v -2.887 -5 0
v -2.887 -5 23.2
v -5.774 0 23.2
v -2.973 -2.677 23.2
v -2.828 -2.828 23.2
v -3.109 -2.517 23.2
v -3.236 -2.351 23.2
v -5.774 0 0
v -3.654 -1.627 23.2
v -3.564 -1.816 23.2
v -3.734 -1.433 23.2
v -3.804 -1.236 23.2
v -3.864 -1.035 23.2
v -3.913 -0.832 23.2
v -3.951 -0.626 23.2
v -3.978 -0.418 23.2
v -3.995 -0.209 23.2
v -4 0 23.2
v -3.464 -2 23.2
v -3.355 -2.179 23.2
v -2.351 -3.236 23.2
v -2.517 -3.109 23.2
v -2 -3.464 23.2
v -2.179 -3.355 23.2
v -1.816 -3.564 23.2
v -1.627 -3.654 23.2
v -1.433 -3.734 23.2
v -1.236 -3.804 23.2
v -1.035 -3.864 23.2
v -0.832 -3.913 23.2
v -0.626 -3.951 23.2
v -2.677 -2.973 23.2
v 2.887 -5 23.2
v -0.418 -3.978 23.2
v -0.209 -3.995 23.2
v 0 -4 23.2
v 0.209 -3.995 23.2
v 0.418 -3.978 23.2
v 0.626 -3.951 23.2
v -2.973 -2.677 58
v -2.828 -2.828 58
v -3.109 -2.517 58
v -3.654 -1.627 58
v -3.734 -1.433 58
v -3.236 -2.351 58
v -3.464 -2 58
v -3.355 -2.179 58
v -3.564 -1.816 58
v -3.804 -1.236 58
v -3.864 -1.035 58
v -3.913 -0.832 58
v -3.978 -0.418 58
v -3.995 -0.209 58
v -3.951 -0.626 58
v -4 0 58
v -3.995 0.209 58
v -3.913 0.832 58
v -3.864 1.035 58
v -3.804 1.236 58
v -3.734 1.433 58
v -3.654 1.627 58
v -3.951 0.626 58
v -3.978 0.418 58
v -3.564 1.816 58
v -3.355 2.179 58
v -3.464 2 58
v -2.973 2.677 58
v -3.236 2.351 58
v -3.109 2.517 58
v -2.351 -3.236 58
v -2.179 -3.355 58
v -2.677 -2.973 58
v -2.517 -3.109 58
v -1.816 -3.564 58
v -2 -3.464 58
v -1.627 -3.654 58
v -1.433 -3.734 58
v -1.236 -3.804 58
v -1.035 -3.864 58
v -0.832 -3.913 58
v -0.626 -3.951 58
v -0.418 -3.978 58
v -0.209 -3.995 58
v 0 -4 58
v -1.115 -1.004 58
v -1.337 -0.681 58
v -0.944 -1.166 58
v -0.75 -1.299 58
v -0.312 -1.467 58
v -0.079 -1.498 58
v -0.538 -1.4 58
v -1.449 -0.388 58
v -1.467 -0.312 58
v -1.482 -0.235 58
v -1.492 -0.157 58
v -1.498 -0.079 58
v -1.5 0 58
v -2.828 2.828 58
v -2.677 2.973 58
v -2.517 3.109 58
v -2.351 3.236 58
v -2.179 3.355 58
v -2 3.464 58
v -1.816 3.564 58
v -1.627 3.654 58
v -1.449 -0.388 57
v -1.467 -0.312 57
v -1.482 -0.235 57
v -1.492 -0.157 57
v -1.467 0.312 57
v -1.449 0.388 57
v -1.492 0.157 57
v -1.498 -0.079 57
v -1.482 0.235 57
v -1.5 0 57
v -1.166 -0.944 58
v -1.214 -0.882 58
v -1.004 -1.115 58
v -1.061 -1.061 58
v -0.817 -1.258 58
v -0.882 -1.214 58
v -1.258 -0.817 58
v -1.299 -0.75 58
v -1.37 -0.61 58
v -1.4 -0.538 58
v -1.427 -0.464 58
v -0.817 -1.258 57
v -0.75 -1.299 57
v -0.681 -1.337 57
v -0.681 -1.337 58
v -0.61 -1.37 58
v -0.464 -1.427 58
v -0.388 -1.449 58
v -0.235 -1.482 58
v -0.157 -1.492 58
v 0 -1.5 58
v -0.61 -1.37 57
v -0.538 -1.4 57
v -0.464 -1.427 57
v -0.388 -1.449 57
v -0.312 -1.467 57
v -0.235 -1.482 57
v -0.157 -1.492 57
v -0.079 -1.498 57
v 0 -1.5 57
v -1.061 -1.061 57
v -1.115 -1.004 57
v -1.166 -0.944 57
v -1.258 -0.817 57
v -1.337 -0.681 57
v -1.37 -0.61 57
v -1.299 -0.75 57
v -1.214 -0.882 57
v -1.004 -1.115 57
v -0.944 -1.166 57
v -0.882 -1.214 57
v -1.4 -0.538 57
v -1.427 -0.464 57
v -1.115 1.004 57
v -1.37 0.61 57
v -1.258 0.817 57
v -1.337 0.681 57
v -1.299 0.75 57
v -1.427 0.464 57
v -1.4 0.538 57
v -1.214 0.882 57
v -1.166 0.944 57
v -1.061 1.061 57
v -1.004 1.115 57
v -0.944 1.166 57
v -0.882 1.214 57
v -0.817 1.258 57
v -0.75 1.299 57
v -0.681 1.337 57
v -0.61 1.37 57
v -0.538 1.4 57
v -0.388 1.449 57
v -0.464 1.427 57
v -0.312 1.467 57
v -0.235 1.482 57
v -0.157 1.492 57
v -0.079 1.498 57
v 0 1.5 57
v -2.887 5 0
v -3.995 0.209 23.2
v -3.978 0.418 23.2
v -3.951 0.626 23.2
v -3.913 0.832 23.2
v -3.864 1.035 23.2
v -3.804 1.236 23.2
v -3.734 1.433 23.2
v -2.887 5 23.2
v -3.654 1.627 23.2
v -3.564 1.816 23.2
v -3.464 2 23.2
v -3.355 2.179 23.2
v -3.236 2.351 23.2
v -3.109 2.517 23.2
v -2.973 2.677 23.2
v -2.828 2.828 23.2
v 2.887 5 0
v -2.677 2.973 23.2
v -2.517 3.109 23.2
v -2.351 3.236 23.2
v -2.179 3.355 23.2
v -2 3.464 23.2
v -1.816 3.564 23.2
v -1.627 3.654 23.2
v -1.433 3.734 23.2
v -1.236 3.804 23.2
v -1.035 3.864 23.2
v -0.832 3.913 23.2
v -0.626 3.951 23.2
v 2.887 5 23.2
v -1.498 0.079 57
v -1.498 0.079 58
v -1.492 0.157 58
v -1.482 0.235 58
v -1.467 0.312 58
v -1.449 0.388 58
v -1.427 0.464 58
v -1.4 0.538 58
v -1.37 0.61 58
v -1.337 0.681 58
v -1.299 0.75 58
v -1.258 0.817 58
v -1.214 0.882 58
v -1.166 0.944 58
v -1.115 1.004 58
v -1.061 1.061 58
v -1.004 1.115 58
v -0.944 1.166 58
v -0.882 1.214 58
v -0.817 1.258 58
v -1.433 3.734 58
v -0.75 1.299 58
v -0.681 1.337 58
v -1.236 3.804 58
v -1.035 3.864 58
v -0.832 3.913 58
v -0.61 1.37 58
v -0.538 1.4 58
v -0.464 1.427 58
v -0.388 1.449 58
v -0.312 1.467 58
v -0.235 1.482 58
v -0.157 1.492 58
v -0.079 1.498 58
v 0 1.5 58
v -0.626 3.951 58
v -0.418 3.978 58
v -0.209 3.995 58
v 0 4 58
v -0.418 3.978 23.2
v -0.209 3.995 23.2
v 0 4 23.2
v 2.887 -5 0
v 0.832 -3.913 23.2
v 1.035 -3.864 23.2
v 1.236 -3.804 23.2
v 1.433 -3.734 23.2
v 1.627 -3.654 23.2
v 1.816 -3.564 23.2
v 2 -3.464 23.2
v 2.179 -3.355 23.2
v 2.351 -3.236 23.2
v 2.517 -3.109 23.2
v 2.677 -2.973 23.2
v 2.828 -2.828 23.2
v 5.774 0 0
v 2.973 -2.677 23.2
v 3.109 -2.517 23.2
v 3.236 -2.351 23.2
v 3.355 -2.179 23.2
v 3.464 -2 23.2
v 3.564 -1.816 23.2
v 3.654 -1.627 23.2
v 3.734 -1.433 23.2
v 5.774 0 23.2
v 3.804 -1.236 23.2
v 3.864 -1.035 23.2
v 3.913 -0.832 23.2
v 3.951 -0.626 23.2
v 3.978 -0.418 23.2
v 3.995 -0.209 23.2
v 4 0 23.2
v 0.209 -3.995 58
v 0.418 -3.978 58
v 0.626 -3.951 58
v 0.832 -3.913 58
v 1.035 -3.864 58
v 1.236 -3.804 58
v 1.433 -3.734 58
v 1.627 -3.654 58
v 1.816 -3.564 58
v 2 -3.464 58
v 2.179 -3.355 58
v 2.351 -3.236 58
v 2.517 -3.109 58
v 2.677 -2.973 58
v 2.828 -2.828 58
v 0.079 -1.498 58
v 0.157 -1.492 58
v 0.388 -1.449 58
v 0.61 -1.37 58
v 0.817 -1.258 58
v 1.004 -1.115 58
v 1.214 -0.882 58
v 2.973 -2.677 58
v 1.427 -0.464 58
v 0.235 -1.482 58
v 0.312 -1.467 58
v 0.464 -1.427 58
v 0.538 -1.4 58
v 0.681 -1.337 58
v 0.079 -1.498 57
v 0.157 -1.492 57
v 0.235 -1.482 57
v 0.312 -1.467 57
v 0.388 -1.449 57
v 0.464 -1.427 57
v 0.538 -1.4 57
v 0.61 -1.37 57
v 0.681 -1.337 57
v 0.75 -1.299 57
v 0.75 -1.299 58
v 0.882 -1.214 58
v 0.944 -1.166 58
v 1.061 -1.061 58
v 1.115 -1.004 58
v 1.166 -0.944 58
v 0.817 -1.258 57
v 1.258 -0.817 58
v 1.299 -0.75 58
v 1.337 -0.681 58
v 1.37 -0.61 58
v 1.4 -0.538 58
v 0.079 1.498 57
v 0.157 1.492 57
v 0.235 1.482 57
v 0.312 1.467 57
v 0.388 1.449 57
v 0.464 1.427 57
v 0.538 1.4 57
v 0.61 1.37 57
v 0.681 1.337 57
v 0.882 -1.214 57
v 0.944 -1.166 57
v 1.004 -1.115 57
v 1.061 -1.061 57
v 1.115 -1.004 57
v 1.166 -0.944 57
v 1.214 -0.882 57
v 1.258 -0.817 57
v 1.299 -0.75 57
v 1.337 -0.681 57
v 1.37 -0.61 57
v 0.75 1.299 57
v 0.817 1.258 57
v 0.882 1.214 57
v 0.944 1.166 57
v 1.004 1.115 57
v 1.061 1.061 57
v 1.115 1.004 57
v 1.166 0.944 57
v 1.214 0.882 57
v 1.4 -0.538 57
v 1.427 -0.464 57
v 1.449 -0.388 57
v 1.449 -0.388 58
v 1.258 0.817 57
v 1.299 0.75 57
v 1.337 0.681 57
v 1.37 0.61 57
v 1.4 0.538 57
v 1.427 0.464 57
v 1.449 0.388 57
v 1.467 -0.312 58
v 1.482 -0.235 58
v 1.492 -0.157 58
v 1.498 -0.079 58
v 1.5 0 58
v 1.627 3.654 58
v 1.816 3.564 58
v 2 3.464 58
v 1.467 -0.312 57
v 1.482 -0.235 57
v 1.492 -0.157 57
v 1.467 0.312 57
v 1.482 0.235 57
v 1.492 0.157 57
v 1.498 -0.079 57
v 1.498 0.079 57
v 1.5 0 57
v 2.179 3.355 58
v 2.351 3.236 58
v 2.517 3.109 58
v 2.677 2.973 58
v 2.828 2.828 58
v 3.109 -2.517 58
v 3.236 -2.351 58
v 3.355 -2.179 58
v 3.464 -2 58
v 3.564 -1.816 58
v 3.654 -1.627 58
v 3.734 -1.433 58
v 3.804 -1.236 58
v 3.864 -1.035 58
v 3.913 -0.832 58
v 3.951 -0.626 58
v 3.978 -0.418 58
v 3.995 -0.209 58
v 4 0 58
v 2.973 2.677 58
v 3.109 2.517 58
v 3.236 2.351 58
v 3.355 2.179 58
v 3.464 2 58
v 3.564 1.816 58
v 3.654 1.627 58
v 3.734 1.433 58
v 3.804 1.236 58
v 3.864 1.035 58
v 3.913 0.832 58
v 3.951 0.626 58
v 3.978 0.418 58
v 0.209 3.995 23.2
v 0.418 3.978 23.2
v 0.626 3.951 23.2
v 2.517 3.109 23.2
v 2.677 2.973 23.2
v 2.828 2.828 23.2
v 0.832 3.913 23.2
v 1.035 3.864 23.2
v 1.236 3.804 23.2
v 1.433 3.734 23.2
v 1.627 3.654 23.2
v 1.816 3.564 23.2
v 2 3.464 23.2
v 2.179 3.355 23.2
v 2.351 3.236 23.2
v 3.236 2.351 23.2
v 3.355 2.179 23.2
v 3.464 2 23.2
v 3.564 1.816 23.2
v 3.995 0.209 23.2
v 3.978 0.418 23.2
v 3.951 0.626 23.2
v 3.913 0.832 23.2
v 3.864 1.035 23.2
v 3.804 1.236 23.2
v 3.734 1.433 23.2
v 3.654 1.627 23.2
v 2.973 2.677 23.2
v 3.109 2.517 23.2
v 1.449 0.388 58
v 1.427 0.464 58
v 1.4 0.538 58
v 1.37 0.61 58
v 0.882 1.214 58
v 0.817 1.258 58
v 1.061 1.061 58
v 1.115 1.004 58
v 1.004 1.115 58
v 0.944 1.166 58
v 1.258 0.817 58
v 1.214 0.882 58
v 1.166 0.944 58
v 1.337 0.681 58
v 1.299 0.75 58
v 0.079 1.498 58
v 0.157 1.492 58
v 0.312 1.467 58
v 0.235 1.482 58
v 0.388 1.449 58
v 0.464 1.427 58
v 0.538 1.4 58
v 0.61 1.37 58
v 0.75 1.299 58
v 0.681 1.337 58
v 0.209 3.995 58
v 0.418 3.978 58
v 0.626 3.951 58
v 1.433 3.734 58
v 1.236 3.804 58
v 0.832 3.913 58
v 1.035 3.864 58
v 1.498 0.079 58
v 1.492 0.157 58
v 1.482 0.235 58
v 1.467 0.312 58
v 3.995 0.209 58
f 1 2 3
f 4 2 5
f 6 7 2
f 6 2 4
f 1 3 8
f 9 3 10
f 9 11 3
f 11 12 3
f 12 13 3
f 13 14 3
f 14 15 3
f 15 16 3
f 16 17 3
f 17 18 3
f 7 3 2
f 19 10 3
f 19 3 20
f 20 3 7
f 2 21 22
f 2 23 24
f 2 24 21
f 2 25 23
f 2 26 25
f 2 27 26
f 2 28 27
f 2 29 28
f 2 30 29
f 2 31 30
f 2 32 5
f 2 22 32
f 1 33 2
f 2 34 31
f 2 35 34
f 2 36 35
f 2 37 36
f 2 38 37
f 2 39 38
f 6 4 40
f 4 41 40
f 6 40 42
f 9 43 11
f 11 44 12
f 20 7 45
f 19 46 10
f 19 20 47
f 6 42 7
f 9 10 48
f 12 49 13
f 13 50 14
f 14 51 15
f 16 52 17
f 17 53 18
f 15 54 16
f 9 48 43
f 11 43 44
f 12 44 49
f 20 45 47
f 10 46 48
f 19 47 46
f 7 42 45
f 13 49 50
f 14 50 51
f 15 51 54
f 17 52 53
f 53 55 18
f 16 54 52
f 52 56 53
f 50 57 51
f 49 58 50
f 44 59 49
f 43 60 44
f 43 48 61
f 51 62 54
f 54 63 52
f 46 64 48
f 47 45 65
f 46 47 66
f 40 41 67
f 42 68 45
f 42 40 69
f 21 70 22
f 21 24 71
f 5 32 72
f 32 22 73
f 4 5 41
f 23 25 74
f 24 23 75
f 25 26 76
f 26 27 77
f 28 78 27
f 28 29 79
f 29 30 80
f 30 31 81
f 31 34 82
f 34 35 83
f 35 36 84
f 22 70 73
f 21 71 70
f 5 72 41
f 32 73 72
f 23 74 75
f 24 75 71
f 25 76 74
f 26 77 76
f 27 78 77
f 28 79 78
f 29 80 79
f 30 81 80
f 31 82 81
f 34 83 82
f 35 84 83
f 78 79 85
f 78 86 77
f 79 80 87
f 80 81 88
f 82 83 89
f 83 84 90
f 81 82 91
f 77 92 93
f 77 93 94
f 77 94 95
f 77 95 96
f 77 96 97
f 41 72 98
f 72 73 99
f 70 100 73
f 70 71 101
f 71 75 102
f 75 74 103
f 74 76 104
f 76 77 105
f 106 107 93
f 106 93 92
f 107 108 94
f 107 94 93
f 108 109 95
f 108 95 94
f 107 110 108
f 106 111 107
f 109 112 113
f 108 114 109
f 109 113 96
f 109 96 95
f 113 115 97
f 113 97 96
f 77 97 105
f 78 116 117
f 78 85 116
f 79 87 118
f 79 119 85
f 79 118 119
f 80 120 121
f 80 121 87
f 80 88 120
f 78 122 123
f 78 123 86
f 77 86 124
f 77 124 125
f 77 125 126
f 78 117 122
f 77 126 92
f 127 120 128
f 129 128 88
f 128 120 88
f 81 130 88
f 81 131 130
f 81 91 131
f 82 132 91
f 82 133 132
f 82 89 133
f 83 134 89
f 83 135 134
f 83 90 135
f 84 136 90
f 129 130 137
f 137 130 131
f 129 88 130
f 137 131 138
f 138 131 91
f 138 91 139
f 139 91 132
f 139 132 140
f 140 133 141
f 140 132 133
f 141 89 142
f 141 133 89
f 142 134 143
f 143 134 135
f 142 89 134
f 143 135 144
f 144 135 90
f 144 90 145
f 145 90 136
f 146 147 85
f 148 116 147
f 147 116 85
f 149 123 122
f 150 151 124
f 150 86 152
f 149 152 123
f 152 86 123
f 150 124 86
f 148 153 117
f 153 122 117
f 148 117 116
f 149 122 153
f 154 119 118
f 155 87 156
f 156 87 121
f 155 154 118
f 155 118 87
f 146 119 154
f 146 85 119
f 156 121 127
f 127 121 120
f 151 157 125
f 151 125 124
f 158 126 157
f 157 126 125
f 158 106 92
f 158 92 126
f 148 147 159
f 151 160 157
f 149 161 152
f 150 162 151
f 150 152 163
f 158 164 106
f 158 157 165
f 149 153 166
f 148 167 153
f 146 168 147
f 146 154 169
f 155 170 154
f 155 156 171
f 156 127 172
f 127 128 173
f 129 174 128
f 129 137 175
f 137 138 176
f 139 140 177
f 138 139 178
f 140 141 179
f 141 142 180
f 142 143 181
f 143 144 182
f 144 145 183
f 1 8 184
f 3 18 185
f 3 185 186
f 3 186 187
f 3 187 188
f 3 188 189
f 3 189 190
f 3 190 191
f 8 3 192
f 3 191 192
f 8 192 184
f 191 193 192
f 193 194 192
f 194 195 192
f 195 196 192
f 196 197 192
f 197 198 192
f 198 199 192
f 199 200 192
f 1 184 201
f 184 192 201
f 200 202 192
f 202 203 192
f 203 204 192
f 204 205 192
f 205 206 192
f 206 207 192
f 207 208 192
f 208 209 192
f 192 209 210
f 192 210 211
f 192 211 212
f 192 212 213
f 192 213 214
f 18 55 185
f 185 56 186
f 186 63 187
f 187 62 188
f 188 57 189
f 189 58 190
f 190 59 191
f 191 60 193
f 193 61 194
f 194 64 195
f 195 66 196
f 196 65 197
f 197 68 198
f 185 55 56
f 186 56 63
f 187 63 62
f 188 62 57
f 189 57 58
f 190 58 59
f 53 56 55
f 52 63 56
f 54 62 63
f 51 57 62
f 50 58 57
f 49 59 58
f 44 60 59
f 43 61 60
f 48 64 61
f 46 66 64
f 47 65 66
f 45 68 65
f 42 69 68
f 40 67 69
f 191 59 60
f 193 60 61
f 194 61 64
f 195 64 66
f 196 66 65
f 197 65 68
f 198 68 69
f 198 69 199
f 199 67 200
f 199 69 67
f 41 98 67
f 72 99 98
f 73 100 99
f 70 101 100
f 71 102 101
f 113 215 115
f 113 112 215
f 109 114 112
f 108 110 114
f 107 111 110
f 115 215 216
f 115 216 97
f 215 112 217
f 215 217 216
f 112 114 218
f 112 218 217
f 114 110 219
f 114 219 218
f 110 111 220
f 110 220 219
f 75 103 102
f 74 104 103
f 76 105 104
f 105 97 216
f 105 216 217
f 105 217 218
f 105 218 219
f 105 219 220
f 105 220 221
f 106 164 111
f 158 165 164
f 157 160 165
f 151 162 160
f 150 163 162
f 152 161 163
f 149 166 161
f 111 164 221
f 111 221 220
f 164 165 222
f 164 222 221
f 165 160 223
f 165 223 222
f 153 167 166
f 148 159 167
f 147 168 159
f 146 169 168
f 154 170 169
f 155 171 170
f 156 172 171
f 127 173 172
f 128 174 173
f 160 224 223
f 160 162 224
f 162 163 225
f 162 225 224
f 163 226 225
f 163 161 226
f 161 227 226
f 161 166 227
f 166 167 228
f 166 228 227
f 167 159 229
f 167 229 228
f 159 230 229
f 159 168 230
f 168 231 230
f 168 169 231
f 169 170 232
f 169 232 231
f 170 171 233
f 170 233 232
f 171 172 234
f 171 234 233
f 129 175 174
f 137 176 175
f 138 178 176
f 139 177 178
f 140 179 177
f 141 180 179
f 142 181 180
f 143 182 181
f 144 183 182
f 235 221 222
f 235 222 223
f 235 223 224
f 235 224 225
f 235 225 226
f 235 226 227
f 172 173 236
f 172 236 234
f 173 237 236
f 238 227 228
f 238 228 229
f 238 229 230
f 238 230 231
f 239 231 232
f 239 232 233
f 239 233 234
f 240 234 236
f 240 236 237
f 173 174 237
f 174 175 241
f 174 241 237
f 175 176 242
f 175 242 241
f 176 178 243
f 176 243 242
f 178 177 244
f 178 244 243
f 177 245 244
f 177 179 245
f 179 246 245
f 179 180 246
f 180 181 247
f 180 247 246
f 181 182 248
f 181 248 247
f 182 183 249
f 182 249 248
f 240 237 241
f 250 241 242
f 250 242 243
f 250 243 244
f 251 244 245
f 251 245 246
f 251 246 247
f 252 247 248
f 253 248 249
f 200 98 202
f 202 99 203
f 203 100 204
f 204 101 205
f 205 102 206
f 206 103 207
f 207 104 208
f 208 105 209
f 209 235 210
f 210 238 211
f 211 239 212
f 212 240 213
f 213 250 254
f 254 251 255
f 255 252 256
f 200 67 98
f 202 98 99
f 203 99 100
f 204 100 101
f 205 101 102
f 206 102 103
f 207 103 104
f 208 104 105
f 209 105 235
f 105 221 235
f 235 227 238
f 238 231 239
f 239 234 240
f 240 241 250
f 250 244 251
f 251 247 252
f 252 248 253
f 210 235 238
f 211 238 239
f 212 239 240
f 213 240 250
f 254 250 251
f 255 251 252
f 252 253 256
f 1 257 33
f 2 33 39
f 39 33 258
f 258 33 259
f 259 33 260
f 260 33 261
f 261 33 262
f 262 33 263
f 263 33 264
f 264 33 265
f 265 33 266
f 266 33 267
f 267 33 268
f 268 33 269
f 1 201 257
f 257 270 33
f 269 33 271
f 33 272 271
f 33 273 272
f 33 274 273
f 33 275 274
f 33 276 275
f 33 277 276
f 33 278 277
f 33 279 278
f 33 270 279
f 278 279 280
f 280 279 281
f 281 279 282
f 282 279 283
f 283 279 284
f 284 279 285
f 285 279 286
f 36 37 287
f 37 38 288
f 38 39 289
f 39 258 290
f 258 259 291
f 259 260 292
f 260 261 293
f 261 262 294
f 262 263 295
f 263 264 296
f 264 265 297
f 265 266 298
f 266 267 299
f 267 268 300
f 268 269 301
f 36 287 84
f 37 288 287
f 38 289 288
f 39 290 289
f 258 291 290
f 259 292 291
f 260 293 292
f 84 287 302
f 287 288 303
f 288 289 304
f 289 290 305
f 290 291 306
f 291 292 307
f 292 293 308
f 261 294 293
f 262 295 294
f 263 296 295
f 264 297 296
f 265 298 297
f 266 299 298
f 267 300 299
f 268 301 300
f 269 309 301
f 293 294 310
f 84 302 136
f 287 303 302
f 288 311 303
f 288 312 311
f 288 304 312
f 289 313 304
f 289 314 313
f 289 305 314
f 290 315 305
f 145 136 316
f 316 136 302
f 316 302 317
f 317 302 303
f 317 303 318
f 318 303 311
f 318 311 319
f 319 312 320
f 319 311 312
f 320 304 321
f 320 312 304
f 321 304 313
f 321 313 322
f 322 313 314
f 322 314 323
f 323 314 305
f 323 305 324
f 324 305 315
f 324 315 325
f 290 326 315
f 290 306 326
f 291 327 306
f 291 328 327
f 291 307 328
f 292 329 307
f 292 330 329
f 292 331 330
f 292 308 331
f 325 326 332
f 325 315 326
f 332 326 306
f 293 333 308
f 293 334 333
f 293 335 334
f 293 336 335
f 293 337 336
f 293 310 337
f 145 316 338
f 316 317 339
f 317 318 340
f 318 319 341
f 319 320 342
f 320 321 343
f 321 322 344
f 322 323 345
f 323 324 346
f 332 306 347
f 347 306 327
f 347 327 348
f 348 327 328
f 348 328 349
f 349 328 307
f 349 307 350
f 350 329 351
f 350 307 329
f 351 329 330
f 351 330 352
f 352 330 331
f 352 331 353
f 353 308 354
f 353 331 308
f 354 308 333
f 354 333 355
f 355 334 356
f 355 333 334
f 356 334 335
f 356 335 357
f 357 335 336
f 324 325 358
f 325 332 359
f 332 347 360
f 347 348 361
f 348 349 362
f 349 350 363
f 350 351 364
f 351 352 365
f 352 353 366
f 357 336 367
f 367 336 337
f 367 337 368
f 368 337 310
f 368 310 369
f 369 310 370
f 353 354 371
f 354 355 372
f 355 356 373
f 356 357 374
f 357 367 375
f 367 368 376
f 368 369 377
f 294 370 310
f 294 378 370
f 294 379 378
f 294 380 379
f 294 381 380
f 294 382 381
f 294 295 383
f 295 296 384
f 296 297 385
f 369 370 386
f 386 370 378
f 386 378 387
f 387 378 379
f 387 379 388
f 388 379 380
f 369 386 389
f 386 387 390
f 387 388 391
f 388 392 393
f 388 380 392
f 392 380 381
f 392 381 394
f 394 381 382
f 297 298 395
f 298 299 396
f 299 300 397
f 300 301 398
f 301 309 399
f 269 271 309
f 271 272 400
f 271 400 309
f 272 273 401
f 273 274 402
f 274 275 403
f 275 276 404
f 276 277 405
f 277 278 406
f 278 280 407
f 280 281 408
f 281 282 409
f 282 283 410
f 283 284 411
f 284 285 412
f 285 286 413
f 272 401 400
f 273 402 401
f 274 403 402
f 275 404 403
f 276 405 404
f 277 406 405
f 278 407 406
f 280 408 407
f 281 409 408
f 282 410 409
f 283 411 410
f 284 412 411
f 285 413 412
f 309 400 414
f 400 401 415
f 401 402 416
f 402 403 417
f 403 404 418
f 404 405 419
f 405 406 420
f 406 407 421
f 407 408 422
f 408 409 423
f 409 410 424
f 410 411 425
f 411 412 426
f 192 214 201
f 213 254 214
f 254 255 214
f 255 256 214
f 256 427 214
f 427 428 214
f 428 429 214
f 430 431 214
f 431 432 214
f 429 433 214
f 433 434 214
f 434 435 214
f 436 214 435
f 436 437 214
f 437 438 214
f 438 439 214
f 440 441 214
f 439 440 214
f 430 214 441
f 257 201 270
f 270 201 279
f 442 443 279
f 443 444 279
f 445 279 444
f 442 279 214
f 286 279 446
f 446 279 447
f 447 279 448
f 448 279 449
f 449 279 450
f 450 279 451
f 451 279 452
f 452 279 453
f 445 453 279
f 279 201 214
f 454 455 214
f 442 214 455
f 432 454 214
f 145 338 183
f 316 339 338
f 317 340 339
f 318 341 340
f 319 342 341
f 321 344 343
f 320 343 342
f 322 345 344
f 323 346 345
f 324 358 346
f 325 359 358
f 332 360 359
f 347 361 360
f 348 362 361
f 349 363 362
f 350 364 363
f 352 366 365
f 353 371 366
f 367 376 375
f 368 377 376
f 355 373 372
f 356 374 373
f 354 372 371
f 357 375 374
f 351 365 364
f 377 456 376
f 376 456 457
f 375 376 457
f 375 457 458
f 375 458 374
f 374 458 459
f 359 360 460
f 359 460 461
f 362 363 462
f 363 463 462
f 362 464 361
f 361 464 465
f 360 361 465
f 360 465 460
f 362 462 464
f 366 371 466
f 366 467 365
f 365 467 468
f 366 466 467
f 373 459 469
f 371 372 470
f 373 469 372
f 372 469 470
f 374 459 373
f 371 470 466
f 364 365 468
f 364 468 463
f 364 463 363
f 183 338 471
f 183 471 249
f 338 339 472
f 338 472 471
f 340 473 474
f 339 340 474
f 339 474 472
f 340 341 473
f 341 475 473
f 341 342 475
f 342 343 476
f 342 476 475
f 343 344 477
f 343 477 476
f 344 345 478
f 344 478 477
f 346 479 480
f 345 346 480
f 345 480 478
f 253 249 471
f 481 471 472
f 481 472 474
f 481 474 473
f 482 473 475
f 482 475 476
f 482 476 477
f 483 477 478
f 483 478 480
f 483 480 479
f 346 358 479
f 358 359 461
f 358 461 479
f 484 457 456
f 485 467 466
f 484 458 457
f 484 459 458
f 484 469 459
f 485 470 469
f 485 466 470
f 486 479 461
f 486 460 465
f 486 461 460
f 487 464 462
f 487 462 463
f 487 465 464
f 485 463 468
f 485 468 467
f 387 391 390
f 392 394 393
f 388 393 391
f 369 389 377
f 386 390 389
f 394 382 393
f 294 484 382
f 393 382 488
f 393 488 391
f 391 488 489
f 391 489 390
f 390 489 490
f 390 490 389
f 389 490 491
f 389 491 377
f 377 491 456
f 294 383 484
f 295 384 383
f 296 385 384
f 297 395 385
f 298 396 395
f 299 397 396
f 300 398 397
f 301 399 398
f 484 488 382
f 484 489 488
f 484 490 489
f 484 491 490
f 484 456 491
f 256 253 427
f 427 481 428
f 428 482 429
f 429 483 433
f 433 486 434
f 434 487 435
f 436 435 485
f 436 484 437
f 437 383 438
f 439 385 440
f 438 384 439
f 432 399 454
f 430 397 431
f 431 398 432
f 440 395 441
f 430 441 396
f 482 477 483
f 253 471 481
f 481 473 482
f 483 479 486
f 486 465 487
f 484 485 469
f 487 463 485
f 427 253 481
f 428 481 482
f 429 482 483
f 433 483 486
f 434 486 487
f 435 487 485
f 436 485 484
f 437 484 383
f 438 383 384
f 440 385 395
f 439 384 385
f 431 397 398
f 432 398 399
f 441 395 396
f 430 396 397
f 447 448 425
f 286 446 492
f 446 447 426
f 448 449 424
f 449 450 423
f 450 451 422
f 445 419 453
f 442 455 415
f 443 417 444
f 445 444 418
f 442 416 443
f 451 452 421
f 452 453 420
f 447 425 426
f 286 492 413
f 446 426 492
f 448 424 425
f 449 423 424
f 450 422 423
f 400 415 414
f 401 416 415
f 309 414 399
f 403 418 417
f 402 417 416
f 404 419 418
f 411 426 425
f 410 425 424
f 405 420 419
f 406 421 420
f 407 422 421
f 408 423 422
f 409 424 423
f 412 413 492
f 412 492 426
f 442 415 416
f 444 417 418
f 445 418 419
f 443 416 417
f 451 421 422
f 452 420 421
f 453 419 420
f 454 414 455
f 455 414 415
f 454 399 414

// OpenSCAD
/*
 Hope Turtle — centre axle for Turtle_Control_Cap.scad and
 Turtle_Control_Cage_Matched.scad (4 mm cap roof with 6 mm internal boss).
 Units: mm. License: CERN-OHL-S-2.0. Self-contained.
 Hex end is on Z=0 for printing; the magnet recess opens upward.
 Round section includes the cap roof plus 30 mm inside the cavity.
*/
$fn = 120;

/* [Round shaft] */
round_shaft_diameter = 8;
cap_roof_thickness = 4;
round_length_inside_cap = 30; // From roof underside, INCLUDING the 6 mm boss
round_extension_above_cap = 1;

/* [Hex shaft] */
hex_across_flats = 10;
hex_length = 23;
joining_overlap = 0.2;

/* [Magnet recess] */
magnet_recess_enabled = true;
magnet_diameter = 3;
magnet_thickness = 1;
magnet_diametral_clearance = 0;
magnet_depth_clearance = 0;

/* [Matching interfaces] */
cap_axle_hole_diameter = 8.6;
cap_boss_depth = 6;
cap_insert_length = 35;
cage_hex_across_flats = 10.3;
sail_bar_hole_diameter = 12;
cage_roof_thickness = 6;
bearing_height = 4.5;
sail_bar_thickness = 12;

/* [Hidden] */
eps = 0.02;
hex_corner_diameter = hex_across_flats/cos(30);
round_length = round_length_inside_cap+cap_roof_thickness+round_extension_above_cap;
total_length = hex_length+round_length;
recess_d = magnet_diameter+magnet_diametral_clearance;
recess_depth = magnet_thickness+magnet_depth_clearance;
assert(round_shaft_diameter>0 && round_shaft_diameter<cap_axle_hole_diameter);
assert(hex_across_flats>round_shaft_diameter && hex_across_flats<cage_hex_across_flats);
assert(hex_corner_diameter<sail_bar_hole_diameter);
assert(joining_overlap>0 && joining_overlap<min(hex_length,round_length));
assert(round_length_inside_cap>0 && cap_roof_thickness>0 && round_extension_above_cap>=0);
assert(cap_boss_depth>0 && round_length_inside_cap>cap_boss_depth);
assert(round_length_inside_cap<cap_insert_length,
       "Keep the round end inside the cap's open insert rim.");
assert(hex_length+round_extension_above_cap>
       bearing_height+cage_roof_thickness+sail_bar_thickness,
       "Axle must reach through the cage and sail bar.");
assert(!magnet_recess_enabled || (recess_d>0 && recess_d<round_shaft_diameter
       && recess_depth>0 && recess_depth<round_length_inside_cap));
assert(magnet_diametral_clearance>=0 && magnet_depth_clearance>=0);

module centre_axle() {
    difference() {
        union() {
            cylinder(d=hex_corner_diameter,h=hex_length+joining_overlap,$fn=6);
            translate([0,0,hex_length-joining_overlap])
                cylinder(d=round_shaft_diameter,h=round_length+joining_overlap);
        }
        if(magnet_recess_enabled)
            translate([0,0,total_length-recess_depth])
                cylinder(d=recess_d,h=recess_depth+eps);
    }
}
color([0.74,0.77,0.79]) centre_axle();
echo("Total / nominal round / nominal hex length = ",total_length,round_length,hex_length);
echo("Round diameter / hex across flats = ",round_shaft_diameter,hex_across_flats);
